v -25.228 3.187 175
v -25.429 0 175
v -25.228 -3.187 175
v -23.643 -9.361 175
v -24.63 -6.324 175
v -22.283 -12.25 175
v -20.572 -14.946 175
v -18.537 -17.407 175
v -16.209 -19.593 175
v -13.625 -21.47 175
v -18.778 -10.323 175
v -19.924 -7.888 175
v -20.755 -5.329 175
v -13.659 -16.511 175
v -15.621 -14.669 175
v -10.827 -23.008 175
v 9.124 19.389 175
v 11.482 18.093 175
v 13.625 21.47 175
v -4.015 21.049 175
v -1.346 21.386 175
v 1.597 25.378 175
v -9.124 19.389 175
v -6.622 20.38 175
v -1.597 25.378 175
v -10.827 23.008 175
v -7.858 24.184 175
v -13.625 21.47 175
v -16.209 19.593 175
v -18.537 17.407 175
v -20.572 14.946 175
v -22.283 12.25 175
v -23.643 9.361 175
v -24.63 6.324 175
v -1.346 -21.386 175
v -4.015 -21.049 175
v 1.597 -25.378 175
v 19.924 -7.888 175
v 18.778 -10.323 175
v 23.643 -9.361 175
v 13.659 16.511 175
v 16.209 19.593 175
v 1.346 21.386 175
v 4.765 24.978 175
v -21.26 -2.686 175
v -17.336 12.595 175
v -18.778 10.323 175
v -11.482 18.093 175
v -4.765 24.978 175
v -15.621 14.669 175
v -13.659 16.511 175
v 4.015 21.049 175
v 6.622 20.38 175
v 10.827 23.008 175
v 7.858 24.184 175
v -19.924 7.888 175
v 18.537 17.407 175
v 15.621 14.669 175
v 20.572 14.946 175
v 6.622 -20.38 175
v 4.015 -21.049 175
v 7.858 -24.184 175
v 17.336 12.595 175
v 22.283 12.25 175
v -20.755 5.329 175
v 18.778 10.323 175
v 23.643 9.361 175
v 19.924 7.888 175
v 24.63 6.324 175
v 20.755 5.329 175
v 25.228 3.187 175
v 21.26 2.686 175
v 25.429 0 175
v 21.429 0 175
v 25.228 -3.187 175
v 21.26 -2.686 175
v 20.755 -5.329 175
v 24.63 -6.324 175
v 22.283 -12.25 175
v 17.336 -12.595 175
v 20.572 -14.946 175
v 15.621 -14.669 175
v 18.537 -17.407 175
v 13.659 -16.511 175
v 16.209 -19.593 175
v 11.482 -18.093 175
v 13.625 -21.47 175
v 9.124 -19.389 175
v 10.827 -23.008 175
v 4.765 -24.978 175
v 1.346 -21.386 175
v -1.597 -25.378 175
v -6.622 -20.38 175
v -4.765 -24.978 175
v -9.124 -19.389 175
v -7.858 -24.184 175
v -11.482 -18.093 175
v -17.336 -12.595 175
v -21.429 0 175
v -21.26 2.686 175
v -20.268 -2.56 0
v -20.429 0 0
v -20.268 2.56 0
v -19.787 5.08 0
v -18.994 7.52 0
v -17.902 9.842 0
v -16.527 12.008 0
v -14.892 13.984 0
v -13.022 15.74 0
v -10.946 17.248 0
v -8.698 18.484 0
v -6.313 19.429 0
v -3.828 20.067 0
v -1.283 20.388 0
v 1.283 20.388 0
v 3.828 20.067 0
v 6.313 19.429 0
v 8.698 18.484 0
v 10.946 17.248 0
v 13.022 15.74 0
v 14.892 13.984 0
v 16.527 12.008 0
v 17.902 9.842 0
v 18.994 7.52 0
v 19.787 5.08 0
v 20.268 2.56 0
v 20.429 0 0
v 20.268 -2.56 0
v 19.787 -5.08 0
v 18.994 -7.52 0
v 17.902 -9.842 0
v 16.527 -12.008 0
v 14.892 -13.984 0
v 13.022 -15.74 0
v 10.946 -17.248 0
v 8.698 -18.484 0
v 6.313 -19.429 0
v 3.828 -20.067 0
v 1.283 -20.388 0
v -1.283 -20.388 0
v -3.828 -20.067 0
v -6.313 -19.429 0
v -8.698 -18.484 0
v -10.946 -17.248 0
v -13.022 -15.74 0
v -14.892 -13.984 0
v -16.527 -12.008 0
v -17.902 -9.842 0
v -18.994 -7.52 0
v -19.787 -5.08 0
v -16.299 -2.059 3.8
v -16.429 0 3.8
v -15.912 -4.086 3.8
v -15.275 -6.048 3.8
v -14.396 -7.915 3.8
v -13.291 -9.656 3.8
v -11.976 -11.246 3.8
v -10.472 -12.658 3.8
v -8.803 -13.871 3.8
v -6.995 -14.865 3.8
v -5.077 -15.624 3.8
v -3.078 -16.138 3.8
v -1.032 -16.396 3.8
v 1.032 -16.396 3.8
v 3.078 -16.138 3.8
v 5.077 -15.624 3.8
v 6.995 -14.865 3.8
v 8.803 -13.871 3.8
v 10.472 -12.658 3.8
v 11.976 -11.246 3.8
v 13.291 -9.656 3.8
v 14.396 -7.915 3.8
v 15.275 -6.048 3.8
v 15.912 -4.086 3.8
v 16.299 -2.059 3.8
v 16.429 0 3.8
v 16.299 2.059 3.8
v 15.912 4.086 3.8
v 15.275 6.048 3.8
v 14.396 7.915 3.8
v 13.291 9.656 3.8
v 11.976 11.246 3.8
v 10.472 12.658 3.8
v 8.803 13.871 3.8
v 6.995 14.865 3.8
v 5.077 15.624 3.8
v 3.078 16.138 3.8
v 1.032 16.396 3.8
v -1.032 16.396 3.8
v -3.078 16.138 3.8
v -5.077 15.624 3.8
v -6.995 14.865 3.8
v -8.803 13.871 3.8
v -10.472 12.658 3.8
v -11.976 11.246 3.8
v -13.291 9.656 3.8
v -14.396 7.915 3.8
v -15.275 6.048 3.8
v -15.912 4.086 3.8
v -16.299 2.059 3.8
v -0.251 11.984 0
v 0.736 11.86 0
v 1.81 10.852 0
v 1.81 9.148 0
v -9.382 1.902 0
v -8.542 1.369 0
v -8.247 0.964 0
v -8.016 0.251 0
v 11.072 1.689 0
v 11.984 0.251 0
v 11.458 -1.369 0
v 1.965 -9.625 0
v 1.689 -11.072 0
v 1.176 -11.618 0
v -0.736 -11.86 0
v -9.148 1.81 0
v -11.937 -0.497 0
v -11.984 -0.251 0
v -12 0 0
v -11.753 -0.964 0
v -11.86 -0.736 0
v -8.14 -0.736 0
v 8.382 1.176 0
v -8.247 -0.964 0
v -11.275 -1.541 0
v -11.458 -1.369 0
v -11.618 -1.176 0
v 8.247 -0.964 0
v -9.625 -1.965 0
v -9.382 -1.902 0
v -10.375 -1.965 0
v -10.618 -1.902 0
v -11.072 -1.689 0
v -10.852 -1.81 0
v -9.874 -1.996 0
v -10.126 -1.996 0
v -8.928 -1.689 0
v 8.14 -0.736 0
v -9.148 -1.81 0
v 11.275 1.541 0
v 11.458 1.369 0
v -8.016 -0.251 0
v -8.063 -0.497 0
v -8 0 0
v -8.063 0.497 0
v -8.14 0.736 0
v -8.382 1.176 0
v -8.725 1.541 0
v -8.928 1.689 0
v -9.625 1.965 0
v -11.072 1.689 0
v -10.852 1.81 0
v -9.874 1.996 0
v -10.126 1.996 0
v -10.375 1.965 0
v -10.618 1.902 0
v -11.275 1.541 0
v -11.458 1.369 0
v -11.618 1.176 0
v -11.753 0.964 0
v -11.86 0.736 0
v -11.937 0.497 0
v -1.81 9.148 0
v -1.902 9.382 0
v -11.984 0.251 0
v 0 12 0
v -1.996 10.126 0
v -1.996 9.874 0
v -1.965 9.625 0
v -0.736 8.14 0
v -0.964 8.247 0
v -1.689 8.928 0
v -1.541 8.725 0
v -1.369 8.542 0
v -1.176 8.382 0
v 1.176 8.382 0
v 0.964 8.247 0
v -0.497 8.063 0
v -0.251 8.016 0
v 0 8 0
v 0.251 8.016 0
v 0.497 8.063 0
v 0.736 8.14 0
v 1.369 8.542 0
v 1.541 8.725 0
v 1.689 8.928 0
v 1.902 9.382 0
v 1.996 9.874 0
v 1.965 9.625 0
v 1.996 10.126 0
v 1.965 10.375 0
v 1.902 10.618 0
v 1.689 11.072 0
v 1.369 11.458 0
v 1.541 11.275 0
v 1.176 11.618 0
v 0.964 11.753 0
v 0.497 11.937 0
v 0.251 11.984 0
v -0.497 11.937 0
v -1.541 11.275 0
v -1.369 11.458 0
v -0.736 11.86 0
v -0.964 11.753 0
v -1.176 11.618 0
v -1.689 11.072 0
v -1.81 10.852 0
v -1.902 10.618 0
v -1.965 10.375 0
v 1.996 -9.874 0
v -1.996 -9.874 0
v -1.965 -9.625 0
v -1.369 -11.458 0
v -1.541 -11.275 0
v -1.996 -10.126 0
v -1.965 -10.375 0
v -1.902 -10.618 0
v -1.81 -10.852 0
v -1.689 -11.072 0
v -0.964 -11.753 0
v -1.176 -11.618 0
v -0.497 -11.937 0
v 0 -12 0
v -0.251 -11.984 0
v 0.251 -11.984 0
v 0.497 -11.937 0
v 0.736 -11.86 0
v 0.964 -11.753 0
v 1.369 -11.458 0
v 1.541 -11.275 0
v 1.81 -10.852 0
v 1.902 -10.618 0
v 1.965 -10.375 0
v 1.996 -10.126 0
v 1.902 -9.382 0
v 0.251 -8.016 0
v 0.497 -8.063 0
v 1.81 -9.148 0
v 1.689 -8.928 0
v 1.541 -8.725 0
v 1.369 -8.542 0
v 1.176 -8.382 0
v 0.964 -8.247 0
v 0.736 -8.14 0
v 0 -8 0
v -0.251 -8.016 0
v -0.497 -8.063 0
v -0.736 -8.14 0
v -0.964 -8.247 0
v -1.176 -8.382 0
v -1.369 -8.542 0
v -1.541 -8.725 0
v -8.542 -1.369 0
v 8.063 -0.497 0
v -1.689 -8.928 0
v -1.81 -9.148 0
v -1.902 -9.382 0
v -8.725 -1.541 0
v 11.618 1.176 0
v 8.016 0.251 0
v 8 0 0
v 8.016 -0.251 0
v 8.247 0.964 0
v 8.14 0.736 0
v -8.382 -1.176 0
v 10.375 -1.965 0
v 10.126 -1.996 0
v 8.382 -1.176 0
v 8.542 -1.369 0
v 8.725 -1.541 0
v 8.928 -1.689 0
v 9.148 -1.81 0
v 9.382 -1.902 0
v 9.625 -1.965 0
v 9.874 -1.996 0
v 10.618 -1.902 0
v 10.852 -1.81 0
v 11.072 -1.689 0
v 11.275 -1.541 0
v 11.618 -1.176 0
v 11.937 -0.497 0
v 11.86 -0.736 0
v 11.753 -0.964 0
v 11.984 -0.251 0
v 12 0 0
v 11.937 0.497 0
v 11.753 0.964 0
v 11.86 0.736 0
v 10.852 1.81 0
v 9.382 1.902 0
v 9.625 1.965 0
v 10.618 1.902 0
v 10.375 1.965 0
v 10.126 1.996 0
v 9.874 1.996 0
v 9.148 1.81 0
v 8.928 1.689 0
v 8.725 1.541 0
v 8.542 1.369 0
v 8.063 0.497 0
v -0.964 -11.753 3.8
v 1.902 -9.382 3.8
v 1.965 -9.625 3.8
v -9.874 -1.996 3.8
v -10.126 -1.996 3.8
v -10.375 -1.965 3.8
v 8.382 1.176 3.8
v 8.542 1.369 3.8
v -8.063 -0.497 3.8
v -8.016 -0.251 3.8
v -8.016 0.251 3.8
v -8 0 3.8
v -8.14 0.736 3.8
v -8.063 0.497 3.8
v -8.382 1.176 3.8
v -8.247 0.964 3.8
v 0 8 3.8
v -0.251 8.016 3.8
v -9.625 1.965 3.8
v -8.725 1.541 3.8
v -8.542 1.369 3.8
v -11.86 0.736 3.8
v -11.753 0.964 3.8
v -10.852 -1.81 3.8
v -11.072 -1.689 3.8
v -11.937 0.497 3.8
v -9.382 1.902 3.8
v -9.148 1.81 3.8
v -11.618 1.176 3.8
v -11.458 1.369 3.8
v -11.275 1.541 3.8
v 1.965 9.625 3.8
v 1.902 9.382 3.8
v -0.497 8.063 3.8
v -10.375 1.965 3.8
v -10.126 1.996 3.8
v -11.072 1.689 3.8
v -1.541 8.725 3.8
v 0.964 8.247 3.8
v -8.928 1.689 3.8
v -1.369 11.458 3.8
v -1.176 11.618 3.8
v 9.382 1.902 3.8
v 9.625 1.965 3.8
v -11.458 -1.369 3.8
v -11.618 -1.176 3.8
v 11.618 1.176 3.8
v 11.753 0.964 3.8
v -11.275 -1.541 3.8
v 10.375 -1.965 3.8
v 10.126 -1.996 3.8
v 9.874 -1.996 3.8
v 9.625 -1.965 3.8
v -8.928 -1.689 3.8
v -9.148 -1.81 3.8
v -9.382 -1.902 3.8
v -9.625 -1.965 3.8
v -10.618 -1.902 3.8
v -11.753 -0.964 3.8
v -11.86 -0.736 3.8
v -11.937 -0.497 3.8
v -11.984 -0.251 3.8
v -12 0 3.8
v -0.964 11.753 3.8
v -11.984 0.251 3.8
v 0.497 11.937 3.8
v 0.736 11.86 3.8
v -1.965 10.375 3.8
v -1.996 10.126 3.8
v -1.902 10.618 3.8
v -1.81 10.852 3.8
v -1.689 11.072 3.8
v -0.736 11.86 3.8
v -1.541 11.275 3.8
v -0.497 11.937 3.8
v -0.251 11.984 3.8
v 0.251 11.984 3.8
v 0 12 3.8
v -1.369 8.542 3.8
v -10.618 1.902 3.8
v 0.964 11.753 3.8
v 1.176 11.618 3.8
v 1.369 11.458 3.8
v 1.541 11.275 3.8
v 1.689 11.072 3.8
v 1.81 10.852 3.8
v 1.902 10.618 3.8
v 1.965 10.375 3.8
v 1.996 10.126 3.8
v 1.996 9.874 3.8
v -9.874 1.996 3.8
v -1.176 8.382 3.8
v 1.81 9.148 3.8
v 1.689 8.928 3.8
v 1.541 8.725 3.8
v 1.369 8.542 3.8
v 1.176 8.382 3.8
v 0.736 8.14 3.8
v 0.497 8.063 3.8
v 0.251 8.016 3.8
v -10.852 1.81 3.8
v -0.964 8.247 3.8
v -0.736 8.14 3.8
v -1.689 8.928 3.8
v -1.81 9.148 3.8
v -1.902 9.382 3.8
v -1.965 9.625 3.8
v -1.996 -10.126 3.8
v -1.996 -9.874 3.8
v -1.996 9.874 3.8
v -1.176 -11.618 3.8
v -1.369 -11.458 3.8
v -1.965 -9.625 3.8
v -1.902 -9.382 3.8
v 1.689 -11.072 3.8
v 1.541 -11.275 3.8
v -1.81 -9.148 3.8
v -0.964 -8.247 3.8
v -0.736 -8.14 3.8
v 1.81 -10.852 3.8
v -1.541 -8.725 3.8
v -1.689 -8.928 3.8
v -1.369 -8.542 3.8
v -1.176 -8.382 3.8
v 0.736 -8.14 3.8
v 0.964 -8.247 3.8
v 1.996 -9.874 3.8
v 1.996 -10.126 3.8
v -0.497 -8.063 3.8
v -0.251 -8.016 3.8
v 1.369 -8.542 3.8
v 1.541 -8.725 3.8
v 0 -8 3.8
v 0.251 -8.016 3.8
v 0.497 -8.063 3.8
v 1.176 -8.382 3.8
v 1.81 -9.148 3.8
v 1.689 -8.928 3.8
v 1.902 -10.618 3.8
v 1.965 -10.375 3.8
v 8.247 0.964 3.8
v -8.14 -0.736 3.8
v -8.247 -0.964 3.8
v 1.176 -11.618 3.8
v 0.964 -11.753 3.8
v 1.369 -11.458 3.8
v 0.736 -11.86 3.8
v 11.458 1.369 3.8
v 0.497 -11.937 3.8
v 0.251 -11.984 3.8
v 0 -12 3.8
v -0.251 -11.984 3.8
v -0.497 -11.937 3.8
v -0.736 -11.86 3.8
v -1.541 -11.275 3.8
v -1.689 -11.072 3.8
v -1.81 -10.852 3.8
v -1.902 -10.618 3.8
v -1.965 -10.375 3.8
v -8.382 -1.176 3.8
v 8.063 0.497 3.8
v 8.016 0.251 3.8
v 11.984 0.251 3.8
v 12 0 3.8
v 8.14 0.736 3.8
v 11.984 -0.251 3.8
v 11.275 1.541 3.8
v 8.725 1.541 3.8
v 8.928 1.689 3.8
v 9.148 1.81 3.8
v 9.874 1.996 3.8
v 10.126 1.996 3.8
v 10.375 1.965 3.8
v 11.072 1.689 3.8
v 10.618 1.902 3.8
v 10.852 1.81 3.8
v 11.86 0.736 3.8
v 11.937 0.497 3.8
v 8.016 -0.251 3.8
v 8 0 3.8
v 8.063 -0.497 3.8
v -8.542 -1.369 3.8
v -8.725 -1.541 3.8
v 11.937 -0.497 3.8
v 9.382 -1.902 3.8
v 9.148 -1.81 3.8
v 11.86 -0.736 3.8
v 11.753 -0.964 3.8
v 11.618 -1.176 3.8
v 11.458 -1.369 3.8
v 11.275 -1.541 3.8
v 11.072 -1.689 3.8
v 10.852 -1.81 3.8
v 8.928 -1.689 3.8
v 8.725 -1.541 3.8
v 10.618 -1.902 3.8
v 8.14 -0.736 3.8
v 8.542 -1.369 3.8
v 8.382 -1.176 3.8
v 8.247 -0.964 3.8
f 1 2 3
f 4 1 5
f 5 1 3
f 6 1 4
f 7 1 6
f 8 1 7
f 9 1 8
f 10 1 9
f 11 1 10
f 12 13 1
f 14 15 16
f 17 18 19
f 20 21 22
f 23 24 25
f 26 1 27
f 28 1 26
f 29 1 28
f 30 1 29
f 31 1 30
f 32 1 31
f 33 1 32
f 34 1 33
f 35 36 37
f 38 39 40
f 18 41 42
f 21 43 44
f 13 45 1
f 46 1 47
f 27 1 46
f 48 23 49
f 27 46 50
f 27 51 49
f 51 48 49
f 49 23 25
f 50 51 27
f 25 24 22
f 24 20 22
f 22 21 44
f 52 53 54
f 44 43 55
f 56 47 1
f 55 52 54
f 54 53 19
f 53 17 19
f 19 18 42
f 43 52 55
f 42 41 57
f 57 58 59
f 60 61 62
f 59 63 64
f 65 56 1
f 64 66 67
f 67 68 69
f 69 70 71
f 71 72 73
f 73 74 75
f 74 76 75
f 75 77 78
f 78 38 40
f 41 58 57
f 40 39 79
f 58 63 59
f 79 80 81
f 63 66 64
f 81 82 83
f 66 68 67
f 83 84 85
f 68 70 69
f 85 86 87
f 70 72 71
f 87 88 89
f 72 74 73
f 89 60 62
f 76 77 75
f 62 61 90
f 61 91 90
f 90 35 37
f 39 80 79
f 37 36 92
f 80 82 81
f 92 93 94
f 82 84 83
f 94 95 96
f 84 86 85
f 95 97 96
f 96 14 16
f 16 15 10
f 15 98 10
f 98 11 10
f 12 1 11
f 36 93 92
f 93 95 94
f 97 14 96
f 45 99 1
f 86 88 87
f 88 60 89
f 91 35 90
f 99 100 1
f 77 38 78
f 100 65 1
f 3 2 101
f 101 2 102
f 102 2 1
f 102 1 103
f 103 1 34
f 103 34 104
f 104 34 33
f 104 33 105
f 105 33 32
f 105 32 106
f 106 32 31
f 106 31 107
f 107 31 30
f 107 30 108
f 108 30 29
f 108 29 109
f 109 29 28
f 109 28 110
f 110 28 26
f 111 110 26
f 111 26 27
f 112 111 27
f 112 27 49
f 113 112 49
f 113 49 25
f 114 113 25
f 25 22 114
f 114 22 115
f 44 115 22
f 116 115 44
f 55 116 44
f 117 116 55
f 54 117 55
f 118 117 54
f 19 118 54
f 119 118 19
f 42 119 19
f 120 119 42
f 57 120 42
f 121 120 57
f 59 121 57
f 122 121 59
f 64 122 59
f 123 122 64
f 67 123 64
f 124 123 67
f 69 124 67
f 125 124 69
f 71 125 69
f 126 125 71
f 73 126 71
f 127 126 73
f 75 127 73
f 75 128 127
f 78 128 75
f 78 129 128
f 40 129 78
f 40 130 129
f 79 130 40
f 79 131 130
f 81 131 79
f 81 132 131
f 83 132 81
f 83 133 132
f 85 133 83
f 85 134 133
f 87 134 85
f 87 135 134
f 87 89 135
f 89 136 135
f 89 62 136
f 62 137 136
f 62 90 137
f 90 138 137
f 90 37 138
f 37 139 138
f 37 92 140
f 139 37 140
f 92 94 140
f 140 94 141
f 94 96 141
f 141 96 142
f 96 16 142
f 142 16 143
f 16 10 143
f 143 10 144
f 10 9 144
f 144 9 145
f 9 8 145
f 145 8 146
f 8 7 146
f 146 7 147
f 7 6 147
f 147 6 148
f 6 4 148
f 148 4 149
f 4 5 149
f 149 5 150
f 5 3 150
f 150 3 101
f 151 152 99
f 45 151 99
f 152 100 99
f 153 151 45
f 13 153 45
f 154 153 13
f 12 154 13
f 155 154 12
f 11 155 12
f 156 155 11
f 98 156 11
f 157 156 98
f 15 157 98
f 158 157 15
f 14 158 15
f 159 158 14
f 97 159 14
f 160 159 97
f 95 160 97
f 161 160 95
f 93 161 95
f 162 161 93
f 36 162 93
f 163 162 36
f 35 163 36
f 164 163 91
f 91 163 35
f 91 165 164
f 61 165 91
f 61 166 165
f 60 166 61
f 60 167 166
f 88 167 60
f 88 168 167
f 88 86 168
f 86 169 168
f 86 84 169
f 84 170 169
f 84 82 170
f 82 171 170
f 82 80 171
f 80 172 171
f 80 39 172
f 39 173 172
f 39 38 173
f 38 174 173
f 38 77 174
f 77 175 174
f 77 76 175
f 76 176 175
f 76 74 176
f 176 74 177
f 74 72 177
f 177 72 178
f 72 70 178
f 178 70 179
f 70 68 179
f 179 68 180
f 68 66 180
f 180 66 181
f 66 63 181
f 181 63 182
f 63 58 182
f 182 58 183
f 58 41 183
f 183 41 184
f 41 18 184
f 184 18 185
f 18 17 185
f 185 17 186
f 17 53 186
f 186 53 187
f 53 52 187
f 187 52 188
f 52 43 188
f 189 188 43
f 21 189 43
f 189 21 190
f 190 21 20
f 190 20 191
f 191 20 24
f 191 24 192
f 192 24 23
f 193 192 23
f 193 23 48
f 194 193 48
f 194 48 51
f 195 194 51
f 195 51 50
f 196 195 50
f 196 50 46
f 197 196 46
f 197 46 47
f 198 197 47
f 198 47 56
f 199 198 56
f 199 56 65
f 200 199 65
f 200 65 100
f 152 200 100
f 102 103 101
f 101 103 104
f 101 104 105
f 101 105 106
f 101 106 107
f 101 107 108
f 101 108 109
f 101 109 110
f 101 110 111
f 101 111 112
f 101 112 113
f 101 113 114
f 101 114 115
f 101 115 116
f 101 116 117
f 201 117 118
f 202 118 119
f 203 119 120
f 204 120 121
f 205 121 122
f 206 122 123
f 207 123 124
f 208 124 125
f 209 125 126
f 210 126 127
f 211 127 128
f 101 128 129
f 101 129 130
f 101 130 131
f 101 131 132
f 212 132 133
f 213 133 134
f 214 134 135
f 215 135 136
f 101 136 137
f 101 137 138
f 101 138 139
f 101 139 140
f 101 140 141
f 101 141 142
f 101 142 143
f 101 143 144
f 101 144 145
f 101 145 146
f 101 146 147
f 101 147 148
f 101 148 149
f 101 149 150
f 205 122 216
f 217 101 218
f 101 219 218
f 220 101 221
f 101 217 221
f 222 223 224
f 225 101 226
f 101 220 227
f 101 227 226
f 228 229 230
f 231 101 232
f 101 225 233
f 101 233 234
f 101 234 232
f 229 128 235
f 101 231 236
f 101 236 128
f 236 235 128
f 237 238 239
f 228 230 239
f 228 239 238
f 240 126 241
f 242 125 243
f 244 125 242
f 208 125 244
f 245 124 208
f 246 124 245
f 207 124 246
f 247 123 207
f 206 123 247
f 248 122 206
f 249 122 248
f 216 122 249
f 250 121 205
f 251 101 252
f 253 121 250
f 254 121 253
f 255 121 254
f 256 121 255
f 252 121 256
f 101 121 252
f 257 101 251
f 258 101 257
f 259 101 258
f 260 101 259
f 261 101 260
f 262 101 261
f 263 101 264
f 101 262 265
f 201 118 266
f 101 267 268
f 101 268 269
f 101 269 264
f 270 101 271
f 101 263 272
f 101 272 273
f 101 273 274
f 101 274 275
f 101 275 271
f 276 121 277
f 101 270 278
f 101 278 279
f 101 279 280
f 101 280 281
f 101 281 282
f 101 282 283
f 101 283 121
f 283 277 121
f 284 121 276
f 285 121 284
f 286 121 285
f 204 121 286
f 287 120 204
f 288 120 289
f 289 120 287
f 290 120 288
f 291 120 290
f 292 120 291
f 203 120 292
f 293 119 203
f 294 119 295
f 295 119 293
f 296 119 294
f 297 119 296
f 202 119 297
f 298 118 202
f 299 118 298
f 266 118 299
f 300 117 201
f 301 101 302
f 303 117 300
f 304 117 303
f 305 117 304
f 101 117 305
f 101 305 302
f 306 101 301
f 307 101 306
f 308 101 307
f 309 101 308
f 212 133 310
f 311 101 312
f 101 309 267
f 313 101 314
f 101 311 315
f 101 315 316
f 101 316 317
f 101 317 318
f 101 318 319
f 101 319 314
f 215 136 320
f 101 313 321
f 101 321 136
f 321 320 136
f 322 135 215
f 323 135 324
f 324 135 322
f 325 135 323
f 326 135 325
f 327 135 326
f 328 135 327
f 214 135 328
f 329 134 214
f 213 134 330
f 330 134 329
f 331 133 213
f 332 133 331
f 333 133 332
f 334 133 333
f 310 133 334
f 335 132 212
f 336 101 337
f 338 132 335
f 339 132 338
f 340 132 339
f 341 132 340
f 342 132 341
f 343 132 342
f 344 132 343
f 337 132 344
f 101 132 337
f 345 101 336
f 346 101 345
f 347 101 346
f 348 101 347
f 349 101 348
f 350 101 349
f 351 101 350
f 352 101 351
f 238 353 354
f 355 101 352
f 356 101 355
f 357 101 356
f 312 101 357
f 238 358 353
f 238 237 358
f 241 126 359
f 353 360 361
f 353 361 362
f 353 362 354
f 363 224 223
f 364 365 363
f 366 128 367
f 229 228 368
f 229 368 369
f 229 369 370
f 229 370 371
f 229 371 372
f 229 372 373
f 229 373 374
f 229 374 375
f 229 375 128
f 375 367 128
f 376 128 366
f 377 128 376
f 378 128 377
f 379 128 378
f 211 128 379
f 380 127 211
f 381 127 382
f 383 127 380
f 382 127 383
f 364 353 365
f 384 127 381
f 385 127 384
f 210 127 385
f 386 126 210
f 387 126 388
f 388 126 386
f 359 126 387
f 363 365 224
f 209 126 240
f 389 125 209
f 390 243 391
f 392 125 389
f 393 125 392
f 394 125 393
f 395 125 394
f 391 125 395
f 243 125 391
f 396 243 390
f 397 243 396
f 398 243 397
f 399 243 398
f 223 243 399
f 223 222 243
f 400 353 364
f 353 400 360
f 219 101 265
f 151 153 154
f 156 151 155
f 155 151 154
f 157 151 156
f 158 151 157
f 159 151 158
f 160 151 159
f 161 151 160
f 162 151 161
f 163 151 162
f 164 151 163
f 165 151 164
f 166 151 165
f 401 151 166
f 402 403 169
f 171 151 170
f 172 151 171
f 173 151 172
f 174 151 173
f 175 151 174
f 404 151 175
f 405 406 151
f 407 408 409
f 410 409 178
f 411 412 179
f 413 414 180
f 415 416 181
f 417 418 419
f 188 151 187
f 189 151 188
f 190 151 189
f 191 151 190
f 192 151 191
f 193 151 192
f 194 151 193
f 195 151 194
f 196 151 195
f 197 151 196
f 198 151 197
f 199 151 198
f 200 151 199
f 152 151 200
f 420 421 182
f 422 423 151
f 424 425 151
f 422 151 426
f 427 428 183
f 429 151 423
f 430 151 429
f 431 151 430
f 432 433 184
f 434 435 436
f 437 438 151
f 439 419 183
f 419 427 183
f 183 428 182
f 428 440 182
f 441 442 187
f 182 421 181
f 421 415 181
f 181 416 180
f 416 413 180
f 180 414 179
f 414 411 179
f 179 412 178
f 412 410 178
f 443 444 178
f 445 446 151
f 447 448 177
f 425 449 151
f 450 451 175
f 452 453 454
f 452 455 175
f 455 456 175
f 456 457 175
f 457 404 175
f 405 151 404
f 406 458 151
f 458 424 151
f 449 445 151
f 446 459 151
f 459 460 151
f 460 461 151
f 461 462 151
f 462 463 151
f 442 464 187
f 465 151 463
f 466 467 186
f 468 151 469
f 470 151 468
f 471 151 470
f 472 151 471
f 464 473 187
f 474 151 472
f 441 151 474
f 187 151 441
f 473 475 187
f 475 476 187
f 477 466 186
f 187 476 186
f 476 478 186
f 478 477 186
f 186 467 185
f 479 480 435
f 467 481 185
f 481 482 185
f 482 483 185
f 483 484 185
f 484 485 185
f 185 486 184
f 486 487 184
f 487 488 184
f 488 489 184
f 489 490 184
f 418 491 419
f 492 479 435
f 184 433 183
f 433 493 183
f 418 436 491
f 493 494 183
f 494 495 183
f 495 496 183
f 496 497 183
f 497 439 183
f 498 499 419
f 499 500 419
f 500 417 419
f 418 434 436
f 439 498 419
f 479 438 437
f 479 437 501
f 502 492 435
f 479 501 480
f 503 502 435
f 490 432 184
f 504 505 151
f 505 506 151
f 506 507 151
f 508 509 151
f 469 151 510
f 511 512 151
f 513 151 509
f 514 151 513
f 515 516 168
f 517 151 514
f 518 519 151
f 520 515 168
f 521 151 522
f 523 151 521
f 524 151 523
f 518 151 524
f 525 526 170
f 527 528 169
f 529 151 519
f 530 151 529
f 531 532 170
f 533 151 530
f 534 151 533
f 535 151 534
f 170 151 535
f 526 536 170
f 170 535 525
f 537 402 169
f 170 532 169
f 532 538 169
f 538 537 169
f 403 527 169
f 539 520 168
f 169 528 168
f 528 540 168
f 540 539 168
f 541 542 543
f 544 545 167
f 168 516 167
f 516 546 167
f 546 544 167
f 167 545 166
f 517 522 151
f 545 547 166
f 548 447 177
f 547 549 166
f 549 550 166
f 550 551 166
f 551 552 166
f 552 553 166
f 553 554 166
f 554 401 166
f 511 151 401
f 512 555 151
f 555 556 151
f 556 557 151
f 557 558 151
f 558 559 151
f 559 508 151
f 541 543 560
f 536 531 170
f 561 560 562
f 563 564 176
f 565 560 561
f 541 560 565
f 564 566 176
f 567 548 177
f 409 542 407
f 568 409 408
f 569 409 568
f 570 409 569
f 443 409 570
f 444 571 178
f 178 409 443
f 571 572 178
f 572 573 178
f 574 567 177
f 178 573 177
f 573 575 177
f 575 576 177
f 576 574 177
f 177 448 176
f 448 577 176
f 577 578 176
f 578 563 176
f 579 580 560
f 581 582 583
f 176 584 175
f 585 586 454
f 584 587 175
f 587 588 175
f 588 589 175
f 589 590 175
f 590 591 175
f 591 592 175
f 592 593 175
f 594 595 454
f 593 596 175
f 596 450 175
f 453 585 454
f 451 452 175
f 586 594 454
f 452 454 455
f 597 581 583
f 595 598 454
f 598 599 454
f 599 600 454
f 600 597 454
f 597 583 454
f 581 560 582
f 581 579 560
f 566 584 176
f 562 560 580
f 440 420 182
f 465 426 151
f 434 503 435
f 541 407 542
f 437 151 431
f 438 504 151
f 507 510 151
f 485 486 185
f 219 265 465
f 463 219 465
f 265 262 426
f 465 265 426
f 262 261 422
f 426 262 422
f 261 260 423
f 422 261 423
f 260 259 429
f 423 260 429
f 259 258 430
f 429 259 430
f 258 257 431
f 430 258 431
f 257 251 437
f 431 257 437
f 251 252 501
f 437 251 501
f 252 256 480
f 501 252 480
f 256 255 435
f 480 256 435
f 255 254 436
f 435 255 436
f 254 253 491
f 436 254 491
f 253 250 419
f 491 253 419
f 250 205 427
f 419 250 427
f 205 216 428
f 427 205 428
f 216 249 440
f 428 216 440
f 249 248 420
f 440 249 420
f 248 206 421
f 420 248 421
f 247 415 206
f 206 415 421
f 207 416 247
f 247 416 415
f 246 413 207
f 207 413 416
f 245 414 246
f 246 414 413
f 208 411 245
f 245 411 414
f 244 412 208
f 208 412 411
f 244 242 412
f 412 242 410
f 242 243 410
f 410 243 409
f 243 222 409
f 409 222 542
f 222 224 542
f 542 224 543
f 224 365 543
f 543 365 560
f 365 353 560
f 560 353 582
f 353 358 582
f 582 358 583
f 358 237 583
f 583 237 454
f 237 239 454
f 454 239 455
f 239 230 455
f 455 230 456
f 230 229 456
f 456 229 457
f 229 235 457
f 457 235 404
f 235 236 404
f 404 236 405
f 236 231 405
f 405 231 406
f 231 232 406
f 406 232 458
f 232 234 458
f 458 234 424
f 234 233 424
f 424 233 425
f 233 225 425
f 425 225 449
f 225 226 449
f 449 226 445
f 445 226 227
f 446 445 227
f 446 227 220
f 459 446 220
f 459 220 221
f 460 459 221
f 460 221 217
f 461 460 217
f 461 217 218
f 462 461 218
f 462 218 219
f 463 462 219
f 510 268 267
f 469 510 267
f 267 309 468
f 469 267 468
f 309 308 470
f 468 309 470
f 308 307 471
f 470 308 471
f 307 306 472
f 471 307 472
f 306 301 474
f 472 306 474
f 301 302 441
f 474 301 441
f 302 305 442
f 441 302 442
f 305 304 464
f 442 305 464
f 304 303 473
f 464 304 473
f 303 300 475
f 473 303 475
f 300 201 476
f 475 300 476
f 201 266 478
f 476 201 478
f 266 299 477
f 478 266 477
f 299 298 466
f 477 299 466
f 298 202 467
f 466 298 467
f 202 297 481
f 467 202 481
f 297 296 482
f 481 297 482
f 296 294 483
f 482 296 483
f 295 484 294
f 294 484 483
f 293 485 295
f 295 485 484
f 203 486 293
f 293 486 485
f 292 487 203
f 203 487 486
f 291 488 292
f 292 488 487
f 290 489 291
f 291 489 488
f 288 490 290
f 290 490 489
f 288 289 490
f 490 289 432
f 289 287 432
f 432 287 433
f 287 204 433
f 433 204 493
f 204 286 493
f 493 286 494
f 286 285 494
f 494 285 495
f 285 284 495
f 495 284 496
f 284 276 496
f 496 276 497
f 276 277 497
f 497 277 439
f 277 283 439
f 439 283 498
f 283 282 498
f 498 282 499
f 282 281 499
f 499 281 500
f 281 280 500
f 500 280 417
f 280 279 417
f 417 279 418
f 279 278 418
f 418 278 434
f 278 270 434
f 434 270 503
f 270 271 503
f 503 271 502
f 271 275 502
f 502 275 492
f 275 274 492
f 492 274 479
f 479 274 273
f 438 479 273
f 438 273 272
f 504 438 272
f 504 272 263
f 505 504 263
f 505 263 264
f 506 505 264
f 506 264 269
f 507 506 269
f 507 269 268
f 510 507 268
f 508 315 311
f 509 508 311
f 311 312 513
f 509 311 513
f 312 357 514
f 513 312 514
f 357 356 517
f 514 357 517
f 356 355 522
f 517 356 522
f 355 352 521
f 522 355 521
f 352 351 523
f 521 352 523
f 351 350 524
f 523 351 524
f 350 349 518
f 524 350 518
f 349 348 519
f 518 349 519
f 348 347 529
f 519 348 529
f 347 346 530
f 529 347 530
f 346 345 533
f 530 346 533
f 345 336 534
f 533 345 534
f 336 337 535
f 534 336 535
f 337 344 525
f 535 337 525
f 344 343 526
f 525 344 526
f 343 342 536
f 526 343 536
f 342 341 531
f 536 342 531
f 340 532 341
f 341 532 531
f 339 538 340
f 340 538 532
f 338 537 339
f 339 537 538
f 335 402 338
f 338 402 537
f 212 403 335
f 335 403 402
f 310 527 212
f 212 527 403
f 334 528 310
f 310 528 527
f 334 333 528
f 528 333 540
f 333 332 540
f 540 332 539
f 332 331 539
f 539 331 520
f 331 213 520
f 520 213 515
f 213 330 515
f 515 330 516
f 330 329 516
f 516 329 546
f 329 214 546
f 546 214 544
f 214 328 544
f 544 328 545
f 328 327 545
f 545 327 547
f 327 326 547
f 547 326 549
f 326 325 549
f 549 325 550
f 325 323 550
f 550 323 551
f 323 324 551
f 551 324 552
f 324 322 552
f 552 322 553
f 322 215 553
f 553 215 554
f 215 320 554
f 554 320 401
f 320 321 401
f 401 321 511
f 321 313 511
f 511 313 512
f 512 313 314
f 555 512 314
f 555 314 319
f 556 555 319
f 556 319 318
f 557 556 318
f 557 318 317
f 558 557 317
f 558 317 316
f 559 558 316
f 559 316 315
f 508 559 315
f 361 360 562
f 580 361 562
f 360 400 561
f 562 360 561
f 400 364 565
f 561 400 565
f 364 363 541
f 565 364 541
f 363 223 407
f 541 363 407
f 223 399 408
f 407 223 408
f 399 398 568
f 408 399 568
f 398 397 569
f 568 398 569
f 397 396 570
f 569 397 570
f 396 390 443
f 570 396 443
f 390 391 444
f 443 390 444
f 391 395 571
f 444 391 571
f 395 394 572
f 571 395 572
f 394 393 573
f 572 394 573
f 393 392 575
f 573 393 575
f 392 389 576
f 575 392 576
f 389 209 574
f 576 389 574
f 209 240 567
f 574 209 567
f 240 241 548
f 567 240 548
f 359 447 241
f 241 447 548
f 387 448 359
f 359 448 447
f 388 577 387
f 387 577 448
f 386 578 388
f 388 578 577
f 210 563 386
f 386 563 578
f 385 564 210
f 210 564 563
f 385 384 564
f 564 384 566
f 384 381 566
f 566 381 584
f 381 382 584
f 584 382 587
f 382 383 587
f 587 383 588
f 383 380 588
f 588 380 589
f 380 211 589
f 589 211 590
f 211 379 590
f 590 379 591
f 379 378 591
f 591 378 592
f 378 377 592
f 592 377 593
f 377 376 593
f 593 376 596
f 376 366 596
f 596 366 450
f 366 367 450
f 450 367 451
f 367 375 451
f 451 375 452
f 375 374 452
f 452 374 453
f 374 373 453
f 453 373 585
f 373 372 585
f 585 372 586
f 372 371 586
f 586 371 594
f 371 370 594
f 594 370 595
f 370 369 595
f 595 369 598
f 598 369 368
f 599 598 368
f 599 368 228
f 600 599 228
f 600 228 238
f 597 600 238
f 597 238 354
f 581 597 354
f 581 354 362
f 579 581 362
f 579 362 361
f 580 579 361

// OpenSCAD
// Ping noot noot horn.

// This is in two parts that are meant to put together
// afterwards.


////////////////////////////////////////////////////////////
// outer is the outer part, inner is the inner part. Some variables are shared.

// Overall measurements
outer_total_height = 175;
outer_inner_min_radius = 25;
outer_inner_max_radius = 30;

outer_sleeve_height = 10;
// All thicknesses are approximate
outer_sleeve_min_thickness = 1;
outer_thickness = 4;
// The noot is the trumpet at the end
outer_noot_height = 60;
outer_noot_min_radius = 30;
outer_noot_max_radius = 60;

////////////////////////////////////////////////////////////
// Inner

// Overlap with inner
inner_overlap = 15;

// Outer max should match inner + overlap
// Overlap addition radius can be calculated
inner_overlap_addition_radius = inner_overlap / outer_total_height  * (outer_inner_max_radius - outer_inner_min_radius );
inner_outer_max_radius = outer_inner_min_radius + inner_overlap_addition_radius;

// Outer min should extend the angle
inner_outer_min_radius = outer_inner_min_radius - (outer_inner_max_radius - outer_inner_min_radius ) + inner_overlap_addition_radius;

// Plate is to mount on
inner_mount_thickness = 4;
inner_mount_number = 4;
// Offset from center
inner_mount_offset = 10;
inner_mount_hole_radius = 2;

// Approximate
inner_thickness = 4;

pad = 0.1;
$fn = 50;

module outer() {
    difference() {
        union() {
            // Bottom cylinder is noot
            cylinder( h = outer_noot_height, r2 = outer_noot_min_radius, r1 = outer_noot_max_radius );
            // And a cylinder for the main part (not the sleeve)
            // Note, thickness is not adjusted for slope on cutter cylinder.
            cylinder( h = outer_total_height - outer_sleeve_height,
                r2 = outer_inner_min_radius + outer_thickness,
                r1 = outer_inner_max_radius + outer_thickness );
            // And, the sleeve
            translate([0,0, outer_total_height - outer_sleeve_height - pad])
            cylinder( h = outer_sleeve_height + pad,
                r2 = outer_inner_min_radius + outer_sleeve_min_thickness,
                r1 = outer_inner_min_radius + outer_thickness );
        }
        // The cutter to cut with
        translate([0,0,-pad])
        cylinder( h = outer_total_height + 2*pad,
            r2 = outer_inner_min_radius,
            r1= outer_inner_max_radius );
    }
}

module plate_holes() {
    for(i=[0:inner_mount_number-1]) {
        // Make a small cylinder and rotate
        rotate([0,0,360/inner_mount_number*i])
        translate([inner_mount_offset,0,0])
        cylinder(h = inner_mount_thickness * 2, r = inner_mount_hole_radius, center = true);
    }

}

module inner() {
    // Mount plate
    difference() {
        // Main stuff, with cutout
        difference() {
            cylinder( h = outer_total_height,
                r2 = inner_outer_min_radius,
                r1 = inner_outer_max_radius );
            // Cut away, but leave a plate to mount no.
            // translate([0,0,-pad])
            cylinder( h = outer_total_height - inner_mount_thickness + 2*pad,
                r2 = inner_outer_min_radius - inner_thickness,
                r1 = inner_outer_max_radius - inner_thickness );
        }
        translate([0,0,outer_total_height])
        plate_holes();
    }
}



module main() {

//    outer();
    rotate([180,0,0])
//    translate([outer_noot_max_radius + inner_outer_max_radius + 10, 0, -outer_total_height])
    translate([0,0,-outer_total_height])
inner(); 

}

main();
